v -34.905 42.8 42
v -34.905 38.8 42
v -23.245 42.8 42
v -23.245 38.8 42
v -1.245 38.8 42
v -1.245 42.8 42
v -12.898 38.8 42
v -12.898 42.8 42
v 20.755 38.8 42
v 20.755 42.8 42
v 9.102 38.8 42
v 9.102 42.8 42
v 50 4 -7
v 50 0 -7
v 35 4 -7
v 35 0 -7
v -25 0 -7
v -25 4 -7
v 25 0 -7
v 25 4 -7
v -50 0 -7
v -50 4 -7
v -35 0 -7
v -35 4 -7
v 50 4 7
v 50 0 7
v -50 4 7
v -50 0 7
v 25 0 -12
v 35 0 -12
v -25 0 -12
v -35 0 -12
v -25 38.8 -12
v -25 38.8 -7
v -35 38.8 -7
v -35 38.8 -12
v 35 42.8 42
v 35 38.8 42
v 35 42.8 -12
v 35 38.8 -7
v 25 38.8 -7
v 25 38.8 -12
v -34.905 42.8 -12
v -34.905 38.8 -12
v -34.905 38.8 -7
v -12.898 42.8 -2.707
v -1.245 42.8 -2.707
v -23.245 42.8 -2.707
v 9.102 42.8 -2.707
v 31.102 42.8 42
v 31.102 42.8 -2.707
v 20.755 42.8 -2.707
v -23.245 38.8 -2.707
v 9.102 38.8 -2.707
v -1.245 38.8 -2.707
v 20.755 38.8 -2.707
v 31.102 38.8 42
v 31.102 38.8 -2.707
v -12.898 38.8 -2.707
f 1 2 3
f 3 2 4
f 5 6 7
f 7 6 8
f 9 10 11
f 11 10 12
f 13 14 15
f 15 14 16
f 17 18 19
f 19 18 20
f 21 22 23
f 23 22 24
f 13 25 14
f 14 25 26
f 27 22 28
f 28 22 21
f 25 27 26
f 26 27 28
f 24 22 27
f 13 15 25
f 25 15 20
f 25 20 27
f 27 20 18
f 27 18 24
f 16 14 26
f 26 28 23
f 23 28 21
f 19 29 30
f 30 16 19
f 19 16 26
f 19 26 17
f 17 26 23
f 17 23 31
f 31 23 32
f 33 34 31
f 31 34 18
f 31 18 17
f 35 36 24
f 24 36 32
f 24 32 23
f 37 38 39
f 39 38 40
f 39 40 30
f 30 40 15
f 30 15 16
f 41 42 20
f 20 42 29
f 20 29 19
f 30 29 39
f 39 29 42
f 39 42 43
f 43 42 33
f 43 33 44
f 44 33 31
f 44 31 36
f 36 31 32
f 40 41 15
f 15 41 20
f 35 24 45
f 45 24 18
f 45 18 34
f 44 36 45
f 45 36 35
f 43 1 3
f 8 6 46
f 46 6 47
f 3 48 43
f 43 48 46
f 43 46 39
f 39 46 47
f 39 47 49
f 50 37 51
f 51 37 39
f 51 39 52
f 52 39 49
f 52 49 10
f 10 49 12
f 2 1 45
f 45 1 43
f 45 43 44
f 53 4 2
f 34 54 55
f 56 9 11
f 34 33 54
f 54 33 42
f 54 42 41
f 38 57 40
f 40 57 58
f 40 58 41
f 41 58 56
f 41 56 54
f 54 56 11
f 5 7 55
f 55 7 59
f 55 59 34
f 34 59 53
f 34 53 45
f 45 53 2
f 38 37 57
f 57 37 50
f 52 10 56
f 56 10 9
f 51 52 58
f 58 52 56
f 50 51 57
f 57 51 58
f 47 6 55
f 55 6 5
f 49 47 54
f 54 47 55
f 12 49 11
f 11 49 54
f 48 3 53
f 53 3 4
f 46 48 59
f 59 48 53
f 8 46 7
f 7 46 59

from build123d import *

# Parameters (mm, degrees)
SKETCH2_W           = 100
SKETCH2_H           = 14
BOSS_EXTRUDE1_DEPTH = 4
SKETCH3_W           = 10
SKETCH3_H           = 4
BOSS_EXTRUDE2_DEPTH = 5
SKETCH4_W           = 10
SKETCH4_H           = 5
BOSS_EXTRUDE3_DEPTH = 34.8
SKETCH5_W           = 69.90455619
SKETCH5_H           = 4
BOSS_EXTRUDE4_DEPTH = 54
SKETCH6_W           = 10.347488473
SKETCH6_H           = 44.707321825
CUT_EXTRUDE1_DEPTH  = 14


with BuildPart() as part:
    # Sketch2 → Boss-Extrude1 (new body)
    with BuildSketch(Plane(origin=(0, 0, 0), x_dir=(1, 0, 0), z_dir=(0, 1, 0))):
        Rectangle(SKETCH2_W, SKETCH2_H)
    extrude(amount=BOSS_EXTRUDE1_DEPTH)

    # Sketch3 → Boss-Extrude2 (add)
    with BuildSketch(Plane(origin=(0, 0, -7), x_dir=(-1, 0, 0), z_dir=(0, 0, -1))):
        with Locations((-30, 2)):
            Rectangle(SKETCH3_W, SKETCH3_H)
        with Locations((30, 2)):
            Rectangle(SKETCH3_W, SKETCH3_H)
    extrude(amount=BOSS_EXTRUDE2_DEPTH)

    # Sketch4 → Boss-Extrude3 (add)
    with BuildSketch(Plane(origin=(0, 4, 0), x_dir=(1, 0, 0), z_dir=(0, 1, 0))):
        with Locations((-30, 9.5)):
            Rectangle(SKETCH4_W, SKETCH4_H)
        with Locations((30, 9.5)):
            Rectangle(SKETCH4_W, SKETCH4_H)
    extrude(amount=BOSS_EXTRUDE3_DEPTH)

    # Sketch5 → Boss-Extrude4 (add)
    with BuildSketch(Plane(origin=(0, 0, -12), x_dir=(-1, 0, 0), z_dir=(0, 0, -1))):
        with Locations((-0.047721905, 40.8)):
            Rectangle(SKETCH5_W, SKETCH5_H)
    extrude(amount=-BOSS_EXTRUDE4_DEPTH)

    # Sketch6 → Cut-Extrude1 (cut)
    with BuildSketch(Plane(origin=(0, 42.8, 0), x_dir=(1, 0, 0), z_dir=(0, 1, 0))):
        with Locations((-18.071670011, -19.646339087)):
            Rectangle(SKETCH6_W, SKETCH6_H)
        with Locations((3.92832999, -19.646339087)):
            Rectangle(SKETCH6_W, SKETCH6_H)
        with Locations((25.928329989, -19.646339087)):
            Rectangle(SKETCH6_W, SKETCH6_H)
    extrude(amount=-CUT_EXTRUDE1_DEPTH, mode=Mode.SUBTRACT)


solid = part.part
